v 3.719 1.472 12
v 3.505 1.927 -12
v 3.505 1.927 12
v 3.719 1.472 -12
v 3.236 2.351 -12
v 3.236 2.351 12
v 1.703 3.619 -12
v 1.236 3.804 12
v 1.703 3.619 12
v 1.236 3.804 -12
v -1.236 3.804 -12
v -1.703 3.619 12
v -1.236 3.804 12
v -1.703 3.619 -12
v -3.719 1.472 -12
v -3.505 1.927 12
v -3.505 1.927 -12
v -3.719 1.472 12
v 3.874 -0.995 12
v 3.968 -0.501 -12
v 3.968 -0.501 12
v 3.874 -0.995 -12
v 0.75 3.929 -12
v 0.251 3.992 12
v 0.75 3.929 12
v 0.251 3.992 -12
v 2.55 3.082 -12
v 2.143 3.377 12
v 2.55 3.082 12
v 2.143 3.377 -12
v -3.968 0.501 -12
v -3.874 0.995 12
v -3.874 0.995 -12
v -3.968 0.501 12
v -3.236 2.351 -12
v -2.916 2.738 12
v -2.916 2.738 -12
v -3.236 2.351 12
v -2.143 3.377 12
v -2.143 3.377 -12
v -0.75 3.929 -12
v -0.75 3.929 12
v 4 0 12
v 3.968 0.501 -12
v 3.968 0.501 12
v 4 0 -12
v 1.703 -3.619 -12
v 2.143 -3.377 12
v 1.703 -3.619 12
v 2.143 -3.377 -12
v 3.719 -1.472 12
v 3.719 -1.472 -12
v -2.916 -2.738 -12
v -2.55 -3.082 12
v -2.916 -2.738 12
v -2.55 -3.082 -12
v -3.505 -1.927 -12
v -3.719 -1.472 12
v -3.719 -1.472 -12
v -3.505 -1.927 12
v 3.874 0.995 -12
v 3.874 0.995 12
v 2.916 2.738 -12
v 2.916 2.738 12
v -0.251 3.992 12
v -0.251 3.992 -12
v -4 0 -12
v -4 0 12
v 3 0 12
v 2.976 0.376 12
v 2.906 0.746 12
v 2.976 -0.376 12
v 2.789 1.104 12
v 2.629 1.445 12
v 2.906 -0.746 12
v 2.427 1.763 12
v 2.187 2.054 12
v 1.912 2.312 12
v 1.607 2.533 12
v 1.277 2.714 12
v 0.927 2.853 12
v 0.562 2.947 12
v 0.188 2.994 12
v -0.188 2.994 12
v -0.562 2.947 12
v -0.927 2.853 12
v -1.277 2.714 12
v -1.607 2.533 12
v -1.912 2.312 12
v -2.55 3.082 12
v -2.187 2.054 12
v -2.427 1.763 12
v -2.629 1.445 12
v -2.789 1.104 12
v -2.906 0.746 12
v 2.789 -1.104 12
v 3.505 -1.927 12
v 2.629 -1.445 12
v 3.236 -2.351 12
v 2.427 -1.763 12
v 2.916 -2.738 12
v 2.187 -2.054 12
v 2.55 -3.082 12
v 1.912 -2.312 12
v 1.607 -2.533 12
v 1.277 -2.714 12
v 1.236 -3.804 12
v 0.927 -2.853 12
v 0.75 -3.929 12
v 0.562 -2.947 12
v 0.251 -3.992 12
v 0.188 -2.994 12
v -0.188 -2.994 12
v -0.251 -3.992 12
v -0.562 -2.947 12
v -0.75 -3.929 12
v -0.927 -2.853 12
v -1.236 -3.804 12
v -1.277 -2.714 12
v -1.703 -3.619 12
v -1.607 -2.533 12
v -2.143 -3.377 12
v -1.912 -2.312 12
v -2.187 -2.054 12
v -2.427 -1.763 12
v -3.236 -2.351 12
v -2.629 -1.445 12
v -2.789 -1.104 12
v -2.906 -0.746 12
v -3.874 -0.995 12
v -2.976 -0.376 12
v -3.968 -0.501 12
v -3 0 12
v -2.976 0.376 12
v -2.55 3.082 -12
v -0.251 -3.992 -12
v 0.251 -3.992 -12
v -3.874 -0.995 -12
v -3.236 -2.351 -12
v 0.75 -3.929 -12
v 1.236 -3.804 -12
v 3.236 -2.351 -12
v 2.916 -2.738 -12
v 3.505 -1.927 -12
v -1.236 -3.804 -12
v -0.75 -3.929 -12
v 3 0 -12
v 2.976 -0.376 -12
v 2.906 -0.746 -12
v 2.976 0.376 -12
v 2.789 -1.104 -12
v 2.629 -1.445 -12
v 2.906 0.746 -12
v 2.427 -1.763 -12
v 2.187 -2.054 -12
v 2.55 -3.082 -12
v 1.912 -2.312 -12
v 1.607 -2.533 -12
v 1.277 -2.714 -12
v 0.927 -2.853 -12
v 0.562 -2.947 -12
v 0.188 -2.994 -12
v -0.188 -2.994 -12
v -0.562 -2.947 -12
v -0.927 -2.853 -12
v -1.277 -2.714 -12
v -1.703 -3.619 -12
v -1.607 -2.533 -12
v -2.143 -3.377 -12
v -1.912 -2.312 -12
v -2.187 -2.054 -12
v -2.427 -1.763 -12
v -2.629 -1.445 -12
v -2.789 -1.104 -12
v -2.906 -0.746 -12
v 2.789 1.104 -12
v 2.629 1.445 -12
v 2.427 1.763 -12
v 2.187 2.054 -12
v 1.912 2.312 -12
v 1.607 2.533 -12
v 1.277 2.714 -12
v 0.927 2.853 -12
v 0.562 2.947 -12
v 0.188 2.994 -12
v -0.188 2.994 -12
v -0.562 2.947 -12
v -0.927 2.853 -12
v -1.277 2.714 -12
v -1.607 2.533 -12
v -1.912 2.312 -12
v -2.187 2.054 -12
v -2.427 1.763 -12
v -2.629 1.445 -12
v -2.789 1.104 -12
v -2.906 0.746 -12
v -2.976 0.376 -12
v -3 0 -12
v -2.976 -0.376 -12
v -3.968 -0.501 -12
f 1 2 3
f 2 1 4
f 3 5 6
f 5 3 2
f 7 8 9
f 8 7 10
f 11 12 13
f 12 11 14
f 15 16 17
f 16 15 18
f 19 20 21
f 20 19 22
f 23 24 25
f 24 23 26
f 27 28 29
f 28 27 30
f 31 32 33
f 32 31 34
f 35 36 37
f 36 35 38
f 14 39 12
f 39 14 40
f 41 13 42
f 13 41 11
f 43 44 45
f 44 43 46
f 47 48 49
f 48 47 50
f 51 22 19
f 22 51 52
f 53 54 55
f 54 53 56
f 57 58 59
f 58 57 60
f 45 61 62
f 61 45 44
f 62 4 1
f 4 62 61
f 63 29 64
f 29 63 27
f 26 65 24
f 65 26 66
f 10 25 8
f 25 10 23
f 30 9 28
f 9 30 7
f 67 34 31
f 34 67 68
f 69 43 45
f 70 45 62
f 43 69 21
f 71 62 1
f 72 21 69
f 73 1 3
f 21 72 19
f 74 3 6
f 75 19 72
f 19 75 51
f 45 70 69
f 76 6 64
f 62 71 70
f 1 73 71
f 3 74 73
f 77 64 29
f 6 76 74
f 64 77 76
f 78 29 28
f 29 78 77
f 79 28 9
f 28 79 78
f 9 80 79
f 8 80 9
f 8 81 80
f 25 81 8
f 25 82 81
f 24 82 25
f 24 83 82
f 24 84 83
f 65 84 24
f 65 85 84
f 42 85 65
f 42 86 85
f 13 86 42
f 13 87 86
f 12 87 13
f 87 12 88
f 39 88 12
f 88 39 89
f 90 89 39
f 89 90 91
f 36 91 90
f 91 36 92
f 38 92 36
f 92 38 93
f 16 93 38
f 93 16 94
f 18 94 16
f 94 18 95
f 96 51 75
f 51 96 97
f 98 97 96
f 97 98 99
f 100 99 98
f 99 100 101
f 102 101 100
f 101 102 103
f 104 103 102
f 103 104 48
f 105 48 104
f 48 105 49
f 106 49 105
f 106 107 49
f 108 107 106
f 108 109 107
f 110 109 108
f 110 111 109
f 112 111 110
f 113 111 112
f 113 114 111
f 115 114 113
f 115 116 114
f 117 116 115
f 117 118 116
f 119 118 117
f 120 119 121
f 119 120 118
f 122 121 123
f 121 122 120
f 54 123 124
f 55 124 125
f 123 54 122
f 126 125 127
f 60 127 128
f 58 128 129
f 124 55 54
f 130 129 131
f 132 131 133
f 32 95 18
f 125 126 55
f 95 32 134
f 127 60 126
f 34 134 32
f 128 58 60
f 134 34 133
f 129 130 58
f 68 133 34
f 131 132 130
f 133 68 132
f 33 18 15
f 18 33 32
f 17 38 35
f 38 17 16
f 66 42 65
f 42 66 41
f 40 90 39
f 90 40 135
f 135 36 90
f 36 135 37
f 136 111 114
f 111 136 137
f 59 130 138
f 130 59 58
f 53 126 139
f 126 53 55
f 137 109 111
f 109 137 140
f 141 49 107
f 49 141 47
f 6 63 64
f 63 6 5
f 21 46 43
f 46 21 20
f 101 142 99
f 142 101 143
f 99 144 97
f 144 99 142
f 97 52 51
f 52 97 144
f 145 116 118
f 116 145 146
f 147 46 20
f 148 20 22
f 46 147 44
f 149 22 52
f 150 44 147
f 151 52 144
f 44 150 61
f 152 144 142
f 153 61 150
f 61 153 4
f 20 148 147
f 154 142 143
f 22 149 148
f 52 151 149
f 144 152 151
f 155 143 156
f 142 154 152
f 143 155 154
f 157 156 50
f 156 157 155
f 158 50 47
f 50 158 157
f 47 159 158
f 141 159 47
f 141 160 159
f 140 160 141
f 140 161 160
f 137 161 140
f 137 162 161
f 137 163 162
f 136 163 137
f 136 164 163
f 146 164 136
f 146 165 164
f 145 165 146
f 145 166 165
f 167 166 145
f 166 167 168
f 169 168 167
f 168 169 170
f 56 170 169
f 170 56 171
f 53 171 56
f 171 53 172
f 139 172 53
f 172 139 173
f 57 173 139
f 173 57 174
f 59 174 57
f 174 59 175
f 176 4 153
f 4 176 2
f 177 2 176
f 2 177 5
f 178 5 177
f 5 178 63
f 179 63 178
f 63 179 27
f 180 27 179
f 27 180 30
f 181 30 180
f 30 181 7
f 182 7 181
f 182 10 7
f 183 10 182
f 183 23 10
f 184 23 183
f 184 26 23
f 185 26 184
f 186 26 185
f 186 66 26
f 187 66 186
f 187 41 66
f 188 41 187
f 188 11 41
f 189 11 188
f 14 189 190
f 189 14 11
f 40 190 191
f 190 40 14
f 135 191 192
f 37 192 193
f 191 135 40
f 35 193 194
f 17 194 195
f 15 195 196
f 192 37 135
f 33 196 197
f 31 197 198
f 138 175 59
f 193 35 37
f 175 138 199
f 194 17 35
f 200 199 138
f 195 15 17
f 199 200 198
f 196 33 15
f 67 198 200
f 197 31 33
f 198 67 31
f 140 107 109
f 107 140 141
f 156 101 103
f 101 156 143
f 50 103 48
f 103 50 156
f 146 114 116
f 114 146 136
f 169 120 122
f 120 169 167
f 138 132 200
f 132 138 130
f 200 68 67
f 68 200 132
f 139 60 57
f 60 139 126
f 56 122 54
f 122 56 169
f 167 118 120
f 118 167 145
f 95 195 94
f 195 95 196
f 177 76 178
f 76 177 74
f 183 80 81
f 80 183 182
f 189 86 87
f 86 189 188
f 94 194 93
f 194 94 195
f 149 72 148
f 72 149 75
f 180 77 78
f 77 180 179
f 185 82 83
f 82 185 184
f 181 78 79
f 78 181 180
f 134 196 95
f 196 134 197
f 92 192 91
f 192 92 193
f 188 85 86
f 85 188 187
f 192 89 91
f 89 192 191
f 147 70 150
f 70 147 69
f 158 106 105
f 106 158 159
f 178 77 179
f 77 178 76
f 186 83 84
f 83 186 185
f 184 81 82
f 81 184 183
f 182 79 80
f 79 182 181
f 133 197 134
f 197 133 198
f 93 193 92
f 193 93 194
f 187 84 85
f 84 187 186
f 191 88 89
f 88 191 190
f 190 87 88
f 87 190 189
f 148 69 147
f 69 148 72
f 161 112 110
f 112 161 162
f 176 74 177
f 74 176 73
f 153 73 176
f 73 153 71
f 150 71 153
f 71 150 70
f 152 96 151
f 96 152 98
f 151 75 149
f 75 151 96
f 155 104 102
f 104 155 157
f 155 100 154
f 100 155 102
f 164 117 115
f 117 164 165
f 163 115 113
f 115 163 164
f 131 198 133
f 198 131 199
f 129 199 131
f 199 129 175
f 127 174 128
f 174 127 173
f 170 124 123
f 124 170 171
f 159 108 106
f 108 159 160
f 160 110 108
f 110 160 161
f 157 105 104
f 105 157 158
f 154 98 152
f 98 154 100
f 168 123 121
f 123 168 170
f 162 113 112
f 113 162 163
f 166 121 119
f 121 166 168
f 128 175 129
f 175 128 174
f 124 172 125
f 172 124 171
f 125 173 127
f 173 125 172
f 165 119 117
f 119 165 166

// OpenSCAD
$fn = 50;


difference() {
	union() {
		translate(v = [0, 0, -12.0000000000]) {
			cylinder(h = 24, r = 4.0000000000);
		}
	}
	union() {
		translate(v = [0, 0, -100.0000000000]) {
			cylinder(h = 200, r = 3);
		}
	}
}
